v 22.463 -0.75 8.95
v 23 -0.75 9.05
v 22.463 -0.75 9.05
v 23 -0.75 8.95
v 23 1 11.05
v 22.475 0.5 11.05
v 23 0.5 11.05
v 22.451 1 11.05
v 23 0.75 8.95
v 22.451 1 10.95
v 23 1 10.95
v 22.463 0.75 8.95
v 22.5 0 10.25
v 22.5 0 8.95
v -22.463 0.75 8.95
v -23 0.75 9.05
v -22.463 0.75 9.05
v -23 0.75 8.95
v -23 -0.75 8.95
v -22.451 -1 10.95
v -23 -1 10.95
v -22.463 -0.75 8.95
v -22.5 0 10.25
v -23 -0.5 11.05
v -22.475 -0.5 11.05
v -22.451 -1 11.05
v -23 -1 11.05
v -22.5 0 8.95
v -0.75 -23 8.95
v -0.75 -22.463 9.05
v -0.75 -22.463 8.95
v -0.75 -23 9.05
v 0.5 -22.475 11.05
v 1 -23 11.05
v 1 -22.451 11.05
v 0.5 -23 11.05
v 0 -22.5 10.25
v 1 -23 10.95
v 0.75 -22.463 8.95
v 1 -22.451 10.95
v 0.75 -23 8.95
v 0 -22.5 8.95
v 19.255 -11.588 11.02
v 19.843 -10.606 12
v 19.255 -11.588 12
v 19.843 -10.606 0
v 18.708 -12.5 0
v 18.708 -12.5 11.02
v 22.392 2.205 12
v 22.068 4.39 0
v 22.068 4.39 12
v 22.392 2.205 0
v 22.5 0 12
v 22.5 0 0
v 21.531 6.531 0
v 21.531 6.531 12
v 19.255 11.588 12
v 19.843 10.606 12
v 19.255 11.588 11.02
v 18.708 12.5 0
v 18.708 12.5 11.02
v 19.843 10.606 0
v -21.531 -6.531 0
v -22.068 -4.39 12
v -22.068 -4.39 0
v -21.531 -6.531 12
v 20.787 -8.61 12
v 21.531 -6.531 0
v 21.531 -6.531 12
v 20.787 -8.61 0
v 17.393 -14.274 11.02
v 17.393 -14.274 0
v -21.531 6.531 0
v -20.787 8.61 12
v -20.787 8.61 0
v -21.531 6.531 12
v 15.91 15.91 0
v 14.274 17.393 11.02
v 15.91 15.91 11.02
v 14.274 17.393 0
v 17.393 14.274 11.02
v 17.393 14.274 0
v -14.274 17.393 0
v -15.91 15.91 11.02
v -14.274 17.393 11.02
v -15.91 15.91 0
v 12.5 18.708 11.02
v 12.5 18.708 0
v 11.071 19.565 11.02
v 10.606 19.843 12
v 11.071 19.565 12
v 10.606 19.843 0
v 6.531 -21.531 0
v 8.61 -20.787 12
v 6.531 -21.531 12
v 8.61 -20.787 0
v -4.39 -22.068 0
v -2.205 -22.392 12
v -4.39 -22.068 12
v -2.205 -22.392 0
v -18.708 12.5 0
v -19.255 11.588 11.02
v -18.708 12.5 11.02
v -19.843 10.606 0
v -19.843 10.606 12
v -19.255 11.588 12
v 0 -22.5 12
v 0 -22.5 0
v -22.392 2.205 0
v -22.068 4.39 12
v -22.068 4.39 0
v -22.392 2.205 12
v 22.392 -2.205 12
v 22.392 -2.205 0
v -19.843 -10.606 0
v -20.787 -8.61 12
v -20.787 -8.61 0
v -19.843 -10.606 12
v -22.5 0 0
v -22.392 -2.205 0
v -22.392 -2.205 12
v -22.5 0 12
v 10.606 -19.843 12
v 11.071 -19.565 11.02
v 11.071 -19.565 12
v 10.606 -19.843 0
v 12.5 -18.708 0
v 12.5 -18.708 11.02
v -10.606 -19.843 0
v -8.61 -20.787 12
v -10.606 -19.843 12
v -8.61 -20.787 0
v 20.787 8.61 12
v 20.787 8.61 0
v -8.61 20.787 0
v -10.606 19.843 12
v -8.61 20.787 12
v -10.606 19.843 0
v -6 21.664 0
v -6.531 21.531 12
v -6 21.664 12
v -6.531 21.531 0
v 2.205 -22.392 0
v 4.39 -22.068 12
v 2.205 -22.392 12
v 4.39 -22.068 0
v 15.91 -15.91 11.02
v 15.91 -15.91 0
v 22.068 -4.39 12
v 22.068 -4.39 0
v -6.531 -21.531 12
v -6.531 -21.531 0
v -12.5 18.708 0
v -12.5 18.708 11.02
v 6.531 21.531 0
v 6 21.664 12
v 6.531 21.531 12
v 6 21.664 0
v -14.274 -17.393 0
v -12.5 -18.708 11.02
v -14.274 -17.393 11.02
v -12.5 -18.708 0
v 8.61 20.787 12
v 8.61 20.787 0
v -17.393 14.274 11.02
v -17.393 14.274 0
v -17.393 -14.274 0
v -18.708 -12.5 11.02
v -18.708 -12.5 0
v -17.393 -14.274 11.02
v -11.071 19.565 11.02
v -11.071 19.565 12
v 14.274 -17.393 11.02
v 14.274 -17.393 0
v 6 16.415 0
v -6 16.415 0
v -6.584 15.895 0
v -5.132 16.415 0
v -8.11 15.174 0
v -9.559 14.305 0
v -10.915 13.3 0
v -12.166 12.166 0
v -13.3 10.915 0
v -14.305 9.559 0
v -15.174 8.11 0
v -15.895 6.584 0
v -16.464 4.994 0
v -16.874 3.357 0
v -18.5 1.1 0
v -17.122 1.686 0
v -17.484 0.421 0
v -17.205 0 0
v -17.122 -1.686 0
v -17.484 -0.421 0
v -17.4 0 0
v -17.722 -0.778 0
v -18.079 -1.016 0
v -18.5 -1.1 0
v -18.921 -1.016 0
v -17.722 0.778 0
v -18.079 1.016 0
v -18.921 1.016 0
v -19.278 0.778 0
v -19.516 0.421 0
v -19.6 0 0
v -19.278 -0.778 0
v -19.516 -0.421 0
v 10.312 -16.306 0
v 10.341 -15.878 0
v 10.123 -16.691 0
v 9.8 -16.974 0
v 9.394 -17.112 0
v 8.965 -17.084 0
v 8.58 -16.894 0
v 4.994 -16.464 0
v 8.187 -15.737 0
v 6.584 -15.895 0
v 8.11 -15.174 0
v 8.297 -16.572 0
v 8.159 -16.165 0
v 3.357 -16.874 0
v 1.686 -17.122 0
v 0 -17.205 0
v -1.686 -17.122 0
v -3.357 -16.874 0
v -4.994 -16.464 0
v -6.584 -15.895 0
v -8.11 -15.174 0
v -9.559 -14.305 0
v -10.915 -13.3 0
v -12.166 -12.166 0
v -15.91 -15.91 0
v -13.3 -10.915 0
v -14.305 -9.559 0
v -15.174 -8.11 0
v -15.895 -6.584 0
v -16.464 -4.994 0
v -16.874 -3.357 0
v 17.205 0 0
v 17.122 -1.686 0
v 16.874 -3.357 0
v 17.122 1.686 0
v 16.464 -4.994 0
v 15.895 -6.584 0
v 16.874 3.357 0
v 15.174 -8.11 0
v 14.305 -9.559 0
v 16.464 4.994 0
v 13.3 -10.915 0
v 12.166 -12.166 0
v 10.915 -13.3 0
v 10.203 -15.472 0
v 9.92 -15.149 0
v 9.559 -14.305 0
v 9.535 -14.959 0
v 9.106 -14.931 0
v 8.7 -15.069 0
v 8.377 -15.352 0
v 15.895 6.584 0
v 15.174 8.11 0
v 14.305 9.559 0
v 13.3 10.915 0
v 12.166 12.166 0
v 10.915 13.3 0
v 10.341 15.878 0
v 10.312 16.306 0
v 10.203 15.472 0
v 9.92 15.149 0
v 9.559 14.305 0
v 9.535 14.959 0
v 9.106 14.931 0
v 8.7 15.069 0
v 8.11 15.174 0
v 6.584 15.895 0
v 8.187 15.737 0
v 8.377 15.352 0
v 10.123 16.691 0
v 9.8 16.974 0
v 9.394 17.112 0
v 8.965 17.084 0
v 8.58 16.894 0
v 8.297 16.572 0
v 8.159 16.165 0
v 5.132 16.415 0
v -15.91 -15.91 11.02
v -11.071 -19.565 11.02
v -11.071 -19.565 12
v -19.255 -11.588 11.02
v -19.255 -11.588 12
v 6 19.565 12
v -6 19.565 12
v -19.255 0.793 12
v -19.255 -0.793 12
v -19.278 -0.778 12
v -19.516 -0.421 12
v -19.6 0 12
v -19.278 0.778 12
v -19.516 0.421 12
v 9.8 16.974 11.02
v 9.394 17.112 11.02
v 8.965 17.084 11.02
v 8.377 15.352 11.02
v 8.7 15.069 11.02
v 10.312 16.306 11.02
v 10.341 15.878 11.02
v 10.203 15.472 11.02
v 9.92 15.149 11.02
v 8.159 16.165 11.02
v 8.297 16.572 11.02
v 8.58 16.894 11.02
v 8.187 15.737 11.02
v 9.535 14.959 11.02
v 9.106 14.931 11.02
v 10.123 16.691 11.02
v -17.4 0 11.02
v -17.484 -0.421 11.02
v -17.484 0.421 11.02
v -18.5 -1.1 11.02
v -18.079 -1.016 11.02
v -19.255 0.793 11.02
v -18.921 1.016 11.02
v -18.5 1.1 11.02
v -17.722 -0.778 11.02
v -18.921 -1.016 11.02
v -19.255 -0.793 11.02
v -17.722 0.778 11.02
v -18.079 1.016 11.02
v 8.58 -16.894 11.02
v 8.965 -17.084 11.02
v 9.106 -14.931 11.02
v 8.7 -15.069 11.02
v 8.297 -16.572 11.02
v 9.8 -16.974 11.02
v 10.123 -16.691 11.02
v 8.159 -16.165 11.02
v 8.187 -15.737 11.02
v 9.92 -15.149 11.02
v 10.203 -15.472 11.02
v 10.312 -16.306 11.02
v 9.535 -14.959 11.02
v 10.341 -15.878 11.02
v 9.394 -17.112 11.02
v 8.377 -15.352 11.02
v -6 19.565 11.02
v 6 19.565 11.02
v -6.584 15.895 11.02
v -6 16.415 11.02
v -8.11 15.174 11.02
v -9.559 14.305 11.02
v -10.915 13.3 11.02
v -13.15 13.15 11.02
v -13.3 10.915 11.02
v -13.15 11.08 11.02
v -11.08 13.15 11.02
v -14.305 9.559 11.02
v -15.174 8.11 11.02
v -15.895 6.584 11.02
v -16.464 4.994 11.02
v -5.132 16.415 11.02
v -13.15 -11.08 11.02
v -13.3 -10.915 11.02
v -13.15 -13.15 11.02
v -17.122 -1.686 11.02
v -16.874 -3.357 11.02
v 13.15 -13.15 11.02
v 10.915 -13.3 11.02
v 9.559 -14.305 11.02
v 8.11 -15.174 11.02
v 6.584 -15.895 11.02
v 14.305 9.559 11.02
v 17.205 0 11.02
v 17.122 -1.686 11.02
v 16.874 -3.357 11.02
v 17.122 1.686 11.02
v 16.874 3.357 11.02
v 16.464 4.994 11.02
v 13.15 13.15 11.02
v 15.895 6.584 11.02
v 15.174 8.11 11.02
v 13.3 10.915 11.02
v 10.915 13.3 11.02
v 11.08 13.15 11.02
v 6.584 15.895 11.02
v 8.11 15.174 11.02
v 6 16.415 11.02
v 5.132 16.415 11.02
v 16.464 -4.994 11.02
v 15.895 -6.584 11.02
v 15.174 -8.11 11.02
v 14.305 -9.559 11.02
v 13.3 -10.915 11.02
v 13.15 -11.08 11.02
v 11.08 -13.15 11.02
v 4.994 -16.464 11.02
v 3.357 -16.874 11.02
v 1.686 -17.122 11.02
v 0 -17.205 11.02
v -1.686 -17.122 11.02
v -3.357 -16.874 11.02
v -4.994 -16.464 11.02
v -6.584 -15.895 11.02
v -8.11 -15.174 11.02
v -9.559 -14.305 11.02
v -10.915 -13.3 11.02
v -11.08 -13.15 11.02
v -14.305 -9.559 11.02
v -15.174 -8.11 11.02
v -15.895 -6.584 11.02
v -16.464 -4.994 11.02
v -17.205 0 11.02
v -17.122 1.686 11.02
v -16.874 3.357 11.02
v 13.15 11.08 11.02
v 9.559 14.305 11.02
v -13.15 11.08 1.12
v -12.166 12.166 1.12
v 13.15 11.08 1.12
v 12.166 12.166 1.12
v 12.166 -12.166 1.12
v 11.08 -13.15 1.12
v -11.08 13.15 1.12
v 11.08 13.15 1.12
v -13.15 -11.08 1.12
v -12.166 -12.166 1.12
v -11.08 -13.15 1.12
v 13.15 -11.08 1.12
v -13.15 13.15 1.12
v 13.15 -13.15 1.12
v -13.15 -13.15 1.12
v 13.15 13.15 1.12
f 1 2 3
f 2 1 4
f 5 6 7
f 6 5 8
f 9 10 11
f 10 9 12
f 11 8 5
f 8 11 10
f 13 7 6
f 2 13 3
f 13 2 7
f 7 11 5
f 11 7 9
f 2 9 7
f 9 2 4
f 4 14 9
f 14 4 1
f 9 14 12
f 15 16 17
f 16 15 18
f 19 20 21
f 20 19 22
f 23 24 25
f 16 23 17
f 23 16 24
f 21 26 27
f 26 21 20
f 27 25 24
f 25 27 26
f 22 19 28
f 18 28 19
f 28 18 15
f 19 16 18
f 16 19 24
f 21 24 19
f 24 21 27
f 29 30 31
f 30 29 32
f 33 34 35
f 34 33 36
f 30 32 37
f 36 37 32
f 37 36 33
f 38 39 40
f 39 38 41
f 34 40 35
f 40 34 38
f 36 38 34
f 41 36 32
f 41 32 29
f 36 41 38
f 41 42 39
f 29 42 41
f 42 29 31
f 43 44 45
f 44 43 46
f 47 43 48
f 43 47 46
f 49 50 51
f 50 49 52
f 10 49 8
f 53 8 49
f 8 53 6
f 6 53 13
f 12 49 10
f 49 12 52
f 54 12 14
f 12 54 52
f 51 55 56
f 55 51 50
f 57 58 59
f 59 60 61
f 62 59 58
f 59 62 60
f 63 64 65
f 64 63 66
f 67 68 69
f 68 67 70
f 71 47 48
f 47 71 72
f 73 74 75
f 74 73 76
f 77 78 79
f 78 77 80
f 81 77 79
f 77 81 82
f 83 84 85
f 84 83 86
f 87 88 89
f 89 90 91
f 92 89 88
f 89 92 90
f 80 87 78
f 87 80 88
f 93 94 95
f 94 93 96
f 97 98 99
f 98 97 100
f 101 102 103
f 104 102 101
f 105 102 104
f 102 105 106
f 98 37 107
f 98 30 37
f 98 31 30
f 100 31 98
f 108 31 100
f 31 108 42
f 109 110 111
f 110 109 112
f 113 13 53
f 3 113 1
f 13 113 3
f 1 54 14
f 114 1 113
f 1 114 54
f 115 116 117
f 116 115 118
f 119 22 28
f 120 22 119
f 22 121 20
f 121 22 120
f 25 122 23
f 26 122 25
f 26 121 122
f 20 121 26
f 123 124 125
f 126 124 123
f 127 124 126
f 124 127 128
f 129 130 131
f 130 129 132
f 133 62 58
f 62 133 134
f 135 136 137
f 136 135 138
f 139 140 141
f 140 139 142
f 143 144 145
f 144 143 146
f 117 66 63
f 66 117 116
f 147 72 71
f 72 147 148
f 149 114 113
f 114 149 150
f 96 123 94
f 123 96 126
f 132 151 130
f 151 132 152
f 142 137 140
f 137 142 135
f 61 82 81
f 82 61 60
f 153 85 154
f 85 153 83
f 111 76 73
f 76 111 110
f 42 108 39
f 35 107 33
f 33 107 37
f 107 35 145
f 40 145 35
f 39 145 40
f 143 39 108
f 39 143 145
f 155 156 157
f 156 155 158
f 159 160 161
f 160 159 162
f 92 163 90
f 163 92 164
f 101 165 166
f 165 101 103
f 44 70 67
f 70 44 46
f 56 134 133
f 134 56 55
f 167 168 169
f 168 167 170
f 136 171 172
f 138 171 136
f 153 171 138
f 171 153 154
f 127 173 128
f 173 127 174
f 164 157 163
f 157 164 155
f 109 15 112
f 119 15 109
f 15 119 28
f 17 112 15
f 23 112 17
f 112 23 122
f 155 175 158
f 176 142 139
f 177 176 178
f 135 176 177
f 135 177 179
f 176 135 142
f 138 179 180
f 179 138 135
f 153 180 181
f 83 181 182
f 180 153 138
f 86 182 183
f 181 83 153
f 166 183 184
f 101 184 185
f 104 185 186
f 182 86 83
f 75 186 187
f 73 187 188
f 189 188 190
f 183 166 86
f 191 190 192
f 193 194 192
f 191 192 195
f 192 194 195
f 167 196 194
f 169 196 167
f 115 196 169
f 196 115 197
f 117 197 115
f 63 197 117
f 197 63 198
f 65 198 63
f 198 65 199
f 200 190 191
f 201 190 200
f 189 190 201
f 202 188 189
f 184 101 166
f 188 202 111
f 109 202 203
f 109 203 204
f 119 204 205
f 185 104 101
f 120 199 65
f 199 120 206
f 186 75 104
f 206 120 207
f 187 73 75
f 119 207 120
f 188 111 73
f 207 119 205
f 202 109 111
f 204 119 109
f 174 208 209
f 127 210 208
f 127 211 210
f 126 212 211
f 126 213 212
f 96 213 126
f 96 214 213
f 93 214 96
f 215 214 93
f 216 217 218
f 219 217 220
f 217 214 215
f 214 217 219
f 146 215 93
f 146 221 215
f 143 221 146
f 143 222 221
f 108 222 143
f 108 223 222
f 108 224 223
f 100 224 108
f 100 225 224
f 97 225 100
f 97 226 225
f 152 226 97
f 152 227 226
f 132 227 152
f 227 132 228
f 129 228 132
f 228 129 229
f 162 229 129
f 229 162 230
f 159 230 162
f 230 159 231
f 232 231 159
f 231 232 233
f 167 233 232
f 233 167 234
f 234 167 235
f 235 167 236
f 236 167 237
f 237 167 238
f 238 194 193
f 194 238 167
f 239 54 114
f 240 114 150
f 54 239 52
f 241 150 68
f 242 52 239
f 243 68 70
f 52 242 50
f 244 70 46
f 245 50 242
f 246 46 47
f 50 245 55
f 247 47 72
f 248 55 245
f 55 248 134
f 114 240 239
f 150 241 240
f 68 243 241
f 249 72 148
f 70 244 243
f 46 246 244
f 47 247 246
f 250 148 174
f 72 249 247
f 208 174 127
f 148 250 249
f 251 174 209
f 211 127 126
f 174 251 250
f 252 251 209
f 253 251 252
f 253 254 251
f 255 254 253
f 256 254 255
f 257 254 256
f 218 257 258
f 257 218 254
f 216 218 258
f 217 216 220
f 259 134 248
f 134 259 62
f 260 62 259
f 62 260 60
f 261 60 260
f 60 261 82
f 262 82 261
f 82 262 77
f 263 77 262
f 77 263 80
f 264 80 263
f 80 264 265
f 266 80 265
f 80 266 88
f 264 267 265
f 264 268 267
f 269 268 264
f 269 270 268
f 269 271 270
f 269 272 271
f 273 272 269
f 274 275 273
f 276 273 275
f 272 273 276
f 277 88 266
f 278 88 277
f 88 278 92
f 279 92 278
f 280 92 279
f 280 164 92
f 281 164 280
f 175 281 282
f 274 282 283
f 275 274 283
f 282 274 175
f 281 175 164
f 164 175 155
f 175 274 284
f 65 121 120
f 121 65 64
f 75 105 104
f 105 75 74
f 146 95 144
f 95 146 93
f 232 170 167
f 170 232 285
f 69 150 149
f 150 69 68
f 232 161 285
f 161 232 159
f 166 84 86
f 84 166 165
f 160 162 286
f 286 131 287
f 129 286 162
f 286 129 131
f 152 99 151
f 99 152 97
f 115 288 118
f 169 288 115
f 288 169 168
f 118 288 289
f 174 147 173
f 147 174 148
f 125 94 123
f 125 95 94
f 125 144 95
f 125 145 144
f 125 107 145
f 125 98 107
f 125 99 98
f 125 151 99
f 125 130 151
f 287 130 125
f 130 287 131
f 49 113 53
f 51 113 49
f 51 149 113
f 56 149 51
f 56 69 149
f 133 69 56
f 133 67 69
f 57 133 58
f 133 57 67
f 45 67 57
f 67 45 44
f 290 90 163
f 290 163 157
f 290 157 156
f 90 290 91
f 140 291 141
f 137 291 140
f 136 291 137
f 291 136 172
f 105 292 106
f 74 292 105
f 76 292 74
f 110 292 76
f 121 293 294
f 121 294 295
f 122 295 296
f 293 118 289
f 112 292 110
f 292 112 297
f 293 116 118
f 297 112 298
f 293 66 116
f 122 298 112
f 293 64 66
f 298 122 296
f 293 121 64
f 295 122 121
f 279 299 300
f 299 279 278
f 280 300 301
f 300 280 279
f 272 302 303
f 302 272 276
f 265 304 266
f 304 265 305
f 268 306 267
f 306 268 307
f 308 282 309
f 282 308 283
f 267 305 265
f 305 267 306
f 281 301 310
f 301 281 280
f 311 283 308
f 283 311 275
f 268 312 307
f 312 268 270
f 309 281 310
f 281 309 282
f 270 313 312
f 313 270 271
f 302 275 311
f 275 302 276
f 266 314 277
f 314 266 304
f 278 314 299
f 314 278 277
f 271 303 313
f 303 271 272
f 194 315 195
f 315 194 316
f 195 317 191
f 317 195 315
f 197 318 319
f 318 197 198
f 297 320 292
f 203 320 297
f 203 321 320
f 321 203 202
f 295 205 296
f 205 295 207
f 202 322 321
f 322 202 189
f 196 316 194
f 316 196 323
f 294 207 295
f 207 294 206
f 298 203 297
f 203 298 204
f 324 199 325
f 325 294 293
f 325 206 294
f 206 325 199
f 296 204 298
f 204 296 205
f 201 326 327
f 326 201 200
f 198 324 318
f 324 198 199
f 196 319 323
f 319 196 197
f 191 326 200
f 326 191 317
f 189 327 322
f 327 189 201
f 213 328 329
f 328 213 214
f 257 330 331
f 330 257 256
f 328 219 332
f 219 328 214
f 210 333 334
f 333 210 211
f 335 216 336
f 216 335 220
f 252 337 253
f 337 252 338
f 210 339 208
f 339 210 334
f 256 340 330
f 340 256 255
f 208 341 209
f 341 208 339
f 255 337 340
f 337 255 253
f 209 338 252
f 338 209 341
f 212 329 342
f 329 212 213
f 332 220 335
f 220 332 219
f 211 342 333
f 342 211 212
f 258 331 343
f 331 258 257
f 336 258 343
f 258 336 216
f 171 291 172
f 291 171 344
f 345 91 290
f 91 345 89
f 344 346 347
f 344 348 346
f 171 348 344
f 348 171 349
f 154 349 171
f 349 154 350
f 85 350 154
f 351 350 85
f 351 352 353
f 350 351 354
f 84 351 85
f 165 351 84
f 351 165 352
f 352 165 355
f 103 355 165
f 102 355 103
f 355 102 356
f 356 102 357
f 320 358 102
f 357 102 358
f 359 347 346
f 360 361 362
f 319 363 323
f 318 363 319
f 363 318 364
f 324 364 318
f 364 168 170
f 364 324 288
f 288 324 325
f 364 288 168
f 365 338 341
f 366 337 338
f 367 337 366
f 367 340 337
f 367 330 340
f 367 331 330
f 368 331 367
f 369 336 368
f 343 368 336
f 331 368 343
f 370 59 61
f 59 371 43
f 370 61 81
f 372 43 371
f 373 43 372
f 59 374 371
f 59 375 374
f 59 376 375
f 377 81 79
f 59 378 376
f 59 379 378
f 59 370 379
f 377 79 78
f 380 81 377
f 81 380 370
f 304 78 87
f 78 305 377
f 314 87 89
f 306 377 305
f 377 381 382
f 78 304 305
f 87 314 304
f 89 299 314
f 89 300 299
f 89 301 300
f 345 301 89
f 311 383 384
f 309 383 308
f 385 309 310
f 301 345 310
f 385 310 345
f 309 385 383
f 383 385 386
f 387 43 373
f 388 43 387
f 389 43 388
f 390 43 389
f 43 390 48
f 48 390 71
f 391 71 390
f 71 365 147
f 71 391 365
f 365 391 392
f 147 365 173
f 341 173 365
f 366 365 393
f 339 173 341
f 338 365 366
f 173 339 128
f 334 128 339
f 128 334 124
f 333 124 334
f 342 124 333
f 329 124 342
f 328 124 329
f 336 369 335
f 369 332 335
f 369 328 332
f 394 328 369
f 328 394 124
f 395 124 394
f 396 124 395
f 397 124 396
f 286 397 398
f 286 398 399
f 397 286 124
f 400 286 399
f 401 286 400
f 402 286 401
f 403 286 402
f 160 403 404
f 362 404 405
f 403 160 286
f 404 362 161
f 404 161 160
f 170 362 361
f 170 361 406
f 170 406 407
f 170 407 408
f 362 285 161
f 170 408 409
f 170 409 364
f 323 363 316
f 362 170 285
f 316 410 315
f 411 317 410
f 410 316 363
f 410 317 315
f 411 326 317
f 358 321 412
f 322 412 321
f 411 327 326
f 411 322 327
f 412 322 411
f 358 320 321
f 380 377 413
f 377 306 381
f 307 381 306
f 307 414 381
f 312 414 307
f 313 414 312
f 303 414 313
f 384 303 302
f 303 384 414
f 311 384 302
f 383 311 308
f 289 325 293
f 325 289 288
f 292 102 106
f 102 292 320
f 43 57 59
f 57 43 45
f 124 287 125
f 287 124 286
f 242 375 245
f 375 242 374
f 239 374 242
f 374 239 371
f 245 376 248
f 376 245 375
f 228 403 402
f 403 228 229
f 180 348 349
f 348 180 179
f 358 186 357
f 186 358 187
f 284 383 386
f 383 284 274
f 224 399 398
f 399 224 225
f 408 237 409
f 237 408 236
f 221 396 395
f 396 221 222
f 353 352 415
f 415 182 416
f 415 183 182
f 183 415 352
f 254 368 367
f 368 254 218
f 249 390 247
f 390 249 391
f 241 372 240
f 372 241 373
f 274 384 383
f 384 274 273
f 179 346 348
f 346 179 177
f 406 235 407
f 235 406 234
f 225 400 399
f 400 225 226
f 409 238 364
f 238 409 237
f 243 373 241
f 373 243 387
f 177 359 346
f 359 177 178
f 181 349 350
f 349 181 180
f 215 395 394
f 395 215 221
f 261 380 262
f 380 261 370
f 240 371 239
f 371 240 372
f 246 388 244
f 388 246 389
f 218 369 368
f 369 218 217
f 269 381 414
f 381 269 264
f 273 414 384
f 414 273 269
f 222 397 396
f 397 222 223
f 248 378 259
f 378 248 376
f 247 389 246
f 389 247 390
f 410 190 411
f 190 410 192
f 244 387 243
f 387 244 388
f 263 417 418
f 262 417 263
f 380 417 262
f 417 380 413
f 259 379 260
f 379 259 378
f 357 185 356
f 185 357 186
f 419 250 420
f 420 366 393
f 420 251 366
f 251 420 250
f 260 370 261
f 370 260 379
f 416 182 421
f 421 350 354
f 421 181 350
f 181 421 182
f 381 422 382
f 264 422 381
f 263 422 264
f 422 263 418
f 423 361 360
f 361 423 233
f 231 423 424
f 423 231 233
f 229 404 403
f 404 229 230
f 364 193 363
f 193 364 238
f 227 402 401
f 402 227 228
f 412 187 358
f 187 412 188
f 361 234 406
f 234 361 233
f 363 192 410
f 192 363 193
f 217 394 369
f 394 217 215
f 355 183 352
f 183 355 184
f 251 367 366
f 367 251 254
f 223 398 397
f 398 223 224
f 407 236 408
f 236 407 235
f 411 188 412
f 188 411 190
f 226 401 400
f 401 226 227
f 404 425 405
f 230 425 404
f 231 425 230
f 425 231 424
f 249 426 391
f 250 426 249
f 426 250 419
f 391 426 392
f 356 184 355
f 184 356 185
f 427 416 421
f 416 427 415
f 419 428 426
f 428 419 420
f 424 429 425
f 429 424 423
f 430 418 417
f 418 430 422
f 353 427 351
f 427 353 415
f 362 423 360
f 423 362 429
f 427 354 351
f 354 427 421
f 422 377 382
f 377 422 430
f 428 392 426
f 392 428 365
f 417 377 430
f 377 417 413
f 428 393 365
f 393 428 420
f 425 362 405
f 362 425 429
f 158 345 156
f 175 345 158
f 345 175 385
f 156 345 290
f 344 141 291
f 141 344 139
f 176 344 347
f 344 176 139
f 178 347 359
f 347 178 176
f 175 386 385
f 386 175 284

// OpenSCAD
// Kagami Orb V3.1 — Display Mount (VERIFIED DIMENSIONS)
// ========================================================
// Holds 1.39" round AMOLED at top of sphere
// Material: Grey Pro (dimensional stability)
// Print: Form 4, 25μm layer height (precision)
//
// SOURCES:
// - 1.39" AMOLED: King Tech Display datasheet
//   https://www.kingtechdisplay.com
// - IMX989 Module: SincereFirst 26×26×9.4mm
//   https://sincerefirst.en.made-in-china.com

/* [Display Parameters - 1.39" Round AMOLED 454×454] */
// VERIFIED: King Tech Display datasheet
// Module: 38.83mm (H) × 38.21mm (W) × 0.68mm (T)
// Active: 35.41mm diameter
display_module_height = 38.83;    // Verified dimension
display_module_width = 38.21;     // Verified dimension  
display_module_thickness = 0.68;  // Verified dimension
display_active_diameter = 35.41;  // Verified dimension

/* [Camera Integration - IMX989 Behind Display] */
// VERIFIED: SincereFirst module dimensions
// Module: 26mm × 26mm × 9.4mm
camera_module_size = 26;          // Verified: 26mm square
camera_module_depth = 9.4;        // Verified: includes lens
camera_aperture = 6;              // Pupil hole diameter

/* [Mount Parameters] */
mount_outer_diameter = 45;        // Fits inside 65mm frame
mount_height = 12;                // Depth for display + camera
wall_thickness = 2.5;             // Structural minimum
mount_tolerance = 0.15;           // SLA print tolerance

/* [Retention Features] */
clip_count = 4;                   // Retention clips
clip_width = 3;
clip_depth = 1.5;
screw_hole_diameter = 2.2;        // M2 screws
screw_count = 3;

/* [Derived Dimensions] */
// Display recess (add tolerance)
display_recess_diameter = display_module_height + mount_tolerance * 2;
display_recess_depth = display_module_thickness + 0.3;

// Camera recess (centered)
camera_recess_size = camera_module_size + mount_tolerance * 2;
camera_recess_depth = camera_module_depth + 0.5;

// ============================================================
// MAIN MODULE
// ============================================================
module display_mount() {
    difference() {
        union() {
            // Main body - cylindrical
            cylinder(h=mount_height, d=mount_outer_diameter, $fn=64);
            
            // Retention clips
            for (i = [0:clip_count-1]) {
                rotate([0, 0, i * (360/clip_count)])
                translate([mount_outer_diameter/2 - 1, 0, mount_height - 3])
                    retention_clip();
            }
        }
        
        // Display recess (top) - rectangular for module
        translate([0, 0, mount_height - display_recess_depth])
        linear_extrude(display_recess_depth + 0.1)
            rounded_square([display_module_width + mount_tolerance*2, 
                           display_module_height + mount_tolerance*2], 
                          r=2);
        
        // Display viewing aperture (through)
        translate([0, 0, -0.1])
            cylinder(h=mount_height + 0.2, d=display_active_diameter - 1, $fn=64);
        
        // Camera recess (below display)
        translate([0, 0, mount_height - display_recess_depth - camera_recess_depth])
        linear_extrude(camera_recess_depth + 0.1)
            square([camera_recess_size, camera_recess_size], center=true);
        
        // Camera aperture (pupil) - through center
        translate([0, 0, -0.1])
            cylinder(h=mount_height + 0.2, d=camera_aperture, $fn=32);
        
        // Flex cable channel
        translate([0, display_module_height/2 + 2, mount_height/2])
            cube([12, 10, mount_height + 0.2], center=true);
        
        // M2 screw holes
        for (i = [0:screw_count-1]) {
            angle = i * (360/screw_count) + 60;  // Offset from clips
            rotate([0, 0, angle])
            translate([mount_outer_diameter/2 - 4, 0, -0.1])
                cylinder(h=mount_height + 0.2, d=screw_hole_diameter, $fn=16);
        }
    }
}

// ============================================================
// HELPER MODULES
// ============================================================
module retention_clip() {
    // Snap-fit clip for display retention
    hull() {
        cube([clip_width, clip_depth, 0.1], center=true);
        translate([0, clip_depth/2, 2])
            cube([clip_width, 0.5, 0.1], center=true);
    }
}

module rounded_square(size, r=2) {
    // Rounded rectangle for display recess
    offset(r=r) offset(r=-r)
        square(size, center=true);
}

// ============================================================
// RENDER
// ============================================================
display_mount();

// ============================================================
// VERIFICATION ANNOTATIONS
// ============================================================
echo("=== DISPLAY MOUNT VERIFICATION ===");
echo(str("Display module: ", display_module_width, " × ", display_module_height, " × ", display_module_thickness, "mm"));
echo(str("Display active: ", display_active_diameter, "mm diameter"));
echo(str("Camera module: ", camera_module_size, " × ", camera_module_size, " × ", camera_module_depth, "mm"));
echo(str("Mount outer: ", mount_outer_diameter, "mm"));
echo(str("Mount height: ", mount_height, "mm"));
echo(str("Fits in 65mm frame? ", mount_outer_diameter < 65 ? "YES ✓" : "NO ✗"));
